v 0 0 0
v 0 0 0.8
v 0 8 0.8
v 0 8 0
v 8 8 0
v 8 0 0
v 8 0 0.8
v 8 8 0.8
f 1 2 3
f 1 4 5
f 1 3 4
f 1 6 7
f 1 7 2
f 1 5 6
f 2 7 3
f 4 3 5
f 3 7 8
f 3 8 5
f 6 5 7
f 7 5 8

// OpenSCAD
/* Warning, this is a very basic generator with a lot of approximation 
input data : [WFBGA, SYX, 8x8x0.8mm, 100, , A, C04-00391A]
generated by com.zoubworld.electronics.cad.model3d.Basic
Date : Sun Feb 15 10:50:48 CET 2026
*/

//body
color("black")
translate([0,0,0])
cube([8.0,8.0,0.8], center=false);
